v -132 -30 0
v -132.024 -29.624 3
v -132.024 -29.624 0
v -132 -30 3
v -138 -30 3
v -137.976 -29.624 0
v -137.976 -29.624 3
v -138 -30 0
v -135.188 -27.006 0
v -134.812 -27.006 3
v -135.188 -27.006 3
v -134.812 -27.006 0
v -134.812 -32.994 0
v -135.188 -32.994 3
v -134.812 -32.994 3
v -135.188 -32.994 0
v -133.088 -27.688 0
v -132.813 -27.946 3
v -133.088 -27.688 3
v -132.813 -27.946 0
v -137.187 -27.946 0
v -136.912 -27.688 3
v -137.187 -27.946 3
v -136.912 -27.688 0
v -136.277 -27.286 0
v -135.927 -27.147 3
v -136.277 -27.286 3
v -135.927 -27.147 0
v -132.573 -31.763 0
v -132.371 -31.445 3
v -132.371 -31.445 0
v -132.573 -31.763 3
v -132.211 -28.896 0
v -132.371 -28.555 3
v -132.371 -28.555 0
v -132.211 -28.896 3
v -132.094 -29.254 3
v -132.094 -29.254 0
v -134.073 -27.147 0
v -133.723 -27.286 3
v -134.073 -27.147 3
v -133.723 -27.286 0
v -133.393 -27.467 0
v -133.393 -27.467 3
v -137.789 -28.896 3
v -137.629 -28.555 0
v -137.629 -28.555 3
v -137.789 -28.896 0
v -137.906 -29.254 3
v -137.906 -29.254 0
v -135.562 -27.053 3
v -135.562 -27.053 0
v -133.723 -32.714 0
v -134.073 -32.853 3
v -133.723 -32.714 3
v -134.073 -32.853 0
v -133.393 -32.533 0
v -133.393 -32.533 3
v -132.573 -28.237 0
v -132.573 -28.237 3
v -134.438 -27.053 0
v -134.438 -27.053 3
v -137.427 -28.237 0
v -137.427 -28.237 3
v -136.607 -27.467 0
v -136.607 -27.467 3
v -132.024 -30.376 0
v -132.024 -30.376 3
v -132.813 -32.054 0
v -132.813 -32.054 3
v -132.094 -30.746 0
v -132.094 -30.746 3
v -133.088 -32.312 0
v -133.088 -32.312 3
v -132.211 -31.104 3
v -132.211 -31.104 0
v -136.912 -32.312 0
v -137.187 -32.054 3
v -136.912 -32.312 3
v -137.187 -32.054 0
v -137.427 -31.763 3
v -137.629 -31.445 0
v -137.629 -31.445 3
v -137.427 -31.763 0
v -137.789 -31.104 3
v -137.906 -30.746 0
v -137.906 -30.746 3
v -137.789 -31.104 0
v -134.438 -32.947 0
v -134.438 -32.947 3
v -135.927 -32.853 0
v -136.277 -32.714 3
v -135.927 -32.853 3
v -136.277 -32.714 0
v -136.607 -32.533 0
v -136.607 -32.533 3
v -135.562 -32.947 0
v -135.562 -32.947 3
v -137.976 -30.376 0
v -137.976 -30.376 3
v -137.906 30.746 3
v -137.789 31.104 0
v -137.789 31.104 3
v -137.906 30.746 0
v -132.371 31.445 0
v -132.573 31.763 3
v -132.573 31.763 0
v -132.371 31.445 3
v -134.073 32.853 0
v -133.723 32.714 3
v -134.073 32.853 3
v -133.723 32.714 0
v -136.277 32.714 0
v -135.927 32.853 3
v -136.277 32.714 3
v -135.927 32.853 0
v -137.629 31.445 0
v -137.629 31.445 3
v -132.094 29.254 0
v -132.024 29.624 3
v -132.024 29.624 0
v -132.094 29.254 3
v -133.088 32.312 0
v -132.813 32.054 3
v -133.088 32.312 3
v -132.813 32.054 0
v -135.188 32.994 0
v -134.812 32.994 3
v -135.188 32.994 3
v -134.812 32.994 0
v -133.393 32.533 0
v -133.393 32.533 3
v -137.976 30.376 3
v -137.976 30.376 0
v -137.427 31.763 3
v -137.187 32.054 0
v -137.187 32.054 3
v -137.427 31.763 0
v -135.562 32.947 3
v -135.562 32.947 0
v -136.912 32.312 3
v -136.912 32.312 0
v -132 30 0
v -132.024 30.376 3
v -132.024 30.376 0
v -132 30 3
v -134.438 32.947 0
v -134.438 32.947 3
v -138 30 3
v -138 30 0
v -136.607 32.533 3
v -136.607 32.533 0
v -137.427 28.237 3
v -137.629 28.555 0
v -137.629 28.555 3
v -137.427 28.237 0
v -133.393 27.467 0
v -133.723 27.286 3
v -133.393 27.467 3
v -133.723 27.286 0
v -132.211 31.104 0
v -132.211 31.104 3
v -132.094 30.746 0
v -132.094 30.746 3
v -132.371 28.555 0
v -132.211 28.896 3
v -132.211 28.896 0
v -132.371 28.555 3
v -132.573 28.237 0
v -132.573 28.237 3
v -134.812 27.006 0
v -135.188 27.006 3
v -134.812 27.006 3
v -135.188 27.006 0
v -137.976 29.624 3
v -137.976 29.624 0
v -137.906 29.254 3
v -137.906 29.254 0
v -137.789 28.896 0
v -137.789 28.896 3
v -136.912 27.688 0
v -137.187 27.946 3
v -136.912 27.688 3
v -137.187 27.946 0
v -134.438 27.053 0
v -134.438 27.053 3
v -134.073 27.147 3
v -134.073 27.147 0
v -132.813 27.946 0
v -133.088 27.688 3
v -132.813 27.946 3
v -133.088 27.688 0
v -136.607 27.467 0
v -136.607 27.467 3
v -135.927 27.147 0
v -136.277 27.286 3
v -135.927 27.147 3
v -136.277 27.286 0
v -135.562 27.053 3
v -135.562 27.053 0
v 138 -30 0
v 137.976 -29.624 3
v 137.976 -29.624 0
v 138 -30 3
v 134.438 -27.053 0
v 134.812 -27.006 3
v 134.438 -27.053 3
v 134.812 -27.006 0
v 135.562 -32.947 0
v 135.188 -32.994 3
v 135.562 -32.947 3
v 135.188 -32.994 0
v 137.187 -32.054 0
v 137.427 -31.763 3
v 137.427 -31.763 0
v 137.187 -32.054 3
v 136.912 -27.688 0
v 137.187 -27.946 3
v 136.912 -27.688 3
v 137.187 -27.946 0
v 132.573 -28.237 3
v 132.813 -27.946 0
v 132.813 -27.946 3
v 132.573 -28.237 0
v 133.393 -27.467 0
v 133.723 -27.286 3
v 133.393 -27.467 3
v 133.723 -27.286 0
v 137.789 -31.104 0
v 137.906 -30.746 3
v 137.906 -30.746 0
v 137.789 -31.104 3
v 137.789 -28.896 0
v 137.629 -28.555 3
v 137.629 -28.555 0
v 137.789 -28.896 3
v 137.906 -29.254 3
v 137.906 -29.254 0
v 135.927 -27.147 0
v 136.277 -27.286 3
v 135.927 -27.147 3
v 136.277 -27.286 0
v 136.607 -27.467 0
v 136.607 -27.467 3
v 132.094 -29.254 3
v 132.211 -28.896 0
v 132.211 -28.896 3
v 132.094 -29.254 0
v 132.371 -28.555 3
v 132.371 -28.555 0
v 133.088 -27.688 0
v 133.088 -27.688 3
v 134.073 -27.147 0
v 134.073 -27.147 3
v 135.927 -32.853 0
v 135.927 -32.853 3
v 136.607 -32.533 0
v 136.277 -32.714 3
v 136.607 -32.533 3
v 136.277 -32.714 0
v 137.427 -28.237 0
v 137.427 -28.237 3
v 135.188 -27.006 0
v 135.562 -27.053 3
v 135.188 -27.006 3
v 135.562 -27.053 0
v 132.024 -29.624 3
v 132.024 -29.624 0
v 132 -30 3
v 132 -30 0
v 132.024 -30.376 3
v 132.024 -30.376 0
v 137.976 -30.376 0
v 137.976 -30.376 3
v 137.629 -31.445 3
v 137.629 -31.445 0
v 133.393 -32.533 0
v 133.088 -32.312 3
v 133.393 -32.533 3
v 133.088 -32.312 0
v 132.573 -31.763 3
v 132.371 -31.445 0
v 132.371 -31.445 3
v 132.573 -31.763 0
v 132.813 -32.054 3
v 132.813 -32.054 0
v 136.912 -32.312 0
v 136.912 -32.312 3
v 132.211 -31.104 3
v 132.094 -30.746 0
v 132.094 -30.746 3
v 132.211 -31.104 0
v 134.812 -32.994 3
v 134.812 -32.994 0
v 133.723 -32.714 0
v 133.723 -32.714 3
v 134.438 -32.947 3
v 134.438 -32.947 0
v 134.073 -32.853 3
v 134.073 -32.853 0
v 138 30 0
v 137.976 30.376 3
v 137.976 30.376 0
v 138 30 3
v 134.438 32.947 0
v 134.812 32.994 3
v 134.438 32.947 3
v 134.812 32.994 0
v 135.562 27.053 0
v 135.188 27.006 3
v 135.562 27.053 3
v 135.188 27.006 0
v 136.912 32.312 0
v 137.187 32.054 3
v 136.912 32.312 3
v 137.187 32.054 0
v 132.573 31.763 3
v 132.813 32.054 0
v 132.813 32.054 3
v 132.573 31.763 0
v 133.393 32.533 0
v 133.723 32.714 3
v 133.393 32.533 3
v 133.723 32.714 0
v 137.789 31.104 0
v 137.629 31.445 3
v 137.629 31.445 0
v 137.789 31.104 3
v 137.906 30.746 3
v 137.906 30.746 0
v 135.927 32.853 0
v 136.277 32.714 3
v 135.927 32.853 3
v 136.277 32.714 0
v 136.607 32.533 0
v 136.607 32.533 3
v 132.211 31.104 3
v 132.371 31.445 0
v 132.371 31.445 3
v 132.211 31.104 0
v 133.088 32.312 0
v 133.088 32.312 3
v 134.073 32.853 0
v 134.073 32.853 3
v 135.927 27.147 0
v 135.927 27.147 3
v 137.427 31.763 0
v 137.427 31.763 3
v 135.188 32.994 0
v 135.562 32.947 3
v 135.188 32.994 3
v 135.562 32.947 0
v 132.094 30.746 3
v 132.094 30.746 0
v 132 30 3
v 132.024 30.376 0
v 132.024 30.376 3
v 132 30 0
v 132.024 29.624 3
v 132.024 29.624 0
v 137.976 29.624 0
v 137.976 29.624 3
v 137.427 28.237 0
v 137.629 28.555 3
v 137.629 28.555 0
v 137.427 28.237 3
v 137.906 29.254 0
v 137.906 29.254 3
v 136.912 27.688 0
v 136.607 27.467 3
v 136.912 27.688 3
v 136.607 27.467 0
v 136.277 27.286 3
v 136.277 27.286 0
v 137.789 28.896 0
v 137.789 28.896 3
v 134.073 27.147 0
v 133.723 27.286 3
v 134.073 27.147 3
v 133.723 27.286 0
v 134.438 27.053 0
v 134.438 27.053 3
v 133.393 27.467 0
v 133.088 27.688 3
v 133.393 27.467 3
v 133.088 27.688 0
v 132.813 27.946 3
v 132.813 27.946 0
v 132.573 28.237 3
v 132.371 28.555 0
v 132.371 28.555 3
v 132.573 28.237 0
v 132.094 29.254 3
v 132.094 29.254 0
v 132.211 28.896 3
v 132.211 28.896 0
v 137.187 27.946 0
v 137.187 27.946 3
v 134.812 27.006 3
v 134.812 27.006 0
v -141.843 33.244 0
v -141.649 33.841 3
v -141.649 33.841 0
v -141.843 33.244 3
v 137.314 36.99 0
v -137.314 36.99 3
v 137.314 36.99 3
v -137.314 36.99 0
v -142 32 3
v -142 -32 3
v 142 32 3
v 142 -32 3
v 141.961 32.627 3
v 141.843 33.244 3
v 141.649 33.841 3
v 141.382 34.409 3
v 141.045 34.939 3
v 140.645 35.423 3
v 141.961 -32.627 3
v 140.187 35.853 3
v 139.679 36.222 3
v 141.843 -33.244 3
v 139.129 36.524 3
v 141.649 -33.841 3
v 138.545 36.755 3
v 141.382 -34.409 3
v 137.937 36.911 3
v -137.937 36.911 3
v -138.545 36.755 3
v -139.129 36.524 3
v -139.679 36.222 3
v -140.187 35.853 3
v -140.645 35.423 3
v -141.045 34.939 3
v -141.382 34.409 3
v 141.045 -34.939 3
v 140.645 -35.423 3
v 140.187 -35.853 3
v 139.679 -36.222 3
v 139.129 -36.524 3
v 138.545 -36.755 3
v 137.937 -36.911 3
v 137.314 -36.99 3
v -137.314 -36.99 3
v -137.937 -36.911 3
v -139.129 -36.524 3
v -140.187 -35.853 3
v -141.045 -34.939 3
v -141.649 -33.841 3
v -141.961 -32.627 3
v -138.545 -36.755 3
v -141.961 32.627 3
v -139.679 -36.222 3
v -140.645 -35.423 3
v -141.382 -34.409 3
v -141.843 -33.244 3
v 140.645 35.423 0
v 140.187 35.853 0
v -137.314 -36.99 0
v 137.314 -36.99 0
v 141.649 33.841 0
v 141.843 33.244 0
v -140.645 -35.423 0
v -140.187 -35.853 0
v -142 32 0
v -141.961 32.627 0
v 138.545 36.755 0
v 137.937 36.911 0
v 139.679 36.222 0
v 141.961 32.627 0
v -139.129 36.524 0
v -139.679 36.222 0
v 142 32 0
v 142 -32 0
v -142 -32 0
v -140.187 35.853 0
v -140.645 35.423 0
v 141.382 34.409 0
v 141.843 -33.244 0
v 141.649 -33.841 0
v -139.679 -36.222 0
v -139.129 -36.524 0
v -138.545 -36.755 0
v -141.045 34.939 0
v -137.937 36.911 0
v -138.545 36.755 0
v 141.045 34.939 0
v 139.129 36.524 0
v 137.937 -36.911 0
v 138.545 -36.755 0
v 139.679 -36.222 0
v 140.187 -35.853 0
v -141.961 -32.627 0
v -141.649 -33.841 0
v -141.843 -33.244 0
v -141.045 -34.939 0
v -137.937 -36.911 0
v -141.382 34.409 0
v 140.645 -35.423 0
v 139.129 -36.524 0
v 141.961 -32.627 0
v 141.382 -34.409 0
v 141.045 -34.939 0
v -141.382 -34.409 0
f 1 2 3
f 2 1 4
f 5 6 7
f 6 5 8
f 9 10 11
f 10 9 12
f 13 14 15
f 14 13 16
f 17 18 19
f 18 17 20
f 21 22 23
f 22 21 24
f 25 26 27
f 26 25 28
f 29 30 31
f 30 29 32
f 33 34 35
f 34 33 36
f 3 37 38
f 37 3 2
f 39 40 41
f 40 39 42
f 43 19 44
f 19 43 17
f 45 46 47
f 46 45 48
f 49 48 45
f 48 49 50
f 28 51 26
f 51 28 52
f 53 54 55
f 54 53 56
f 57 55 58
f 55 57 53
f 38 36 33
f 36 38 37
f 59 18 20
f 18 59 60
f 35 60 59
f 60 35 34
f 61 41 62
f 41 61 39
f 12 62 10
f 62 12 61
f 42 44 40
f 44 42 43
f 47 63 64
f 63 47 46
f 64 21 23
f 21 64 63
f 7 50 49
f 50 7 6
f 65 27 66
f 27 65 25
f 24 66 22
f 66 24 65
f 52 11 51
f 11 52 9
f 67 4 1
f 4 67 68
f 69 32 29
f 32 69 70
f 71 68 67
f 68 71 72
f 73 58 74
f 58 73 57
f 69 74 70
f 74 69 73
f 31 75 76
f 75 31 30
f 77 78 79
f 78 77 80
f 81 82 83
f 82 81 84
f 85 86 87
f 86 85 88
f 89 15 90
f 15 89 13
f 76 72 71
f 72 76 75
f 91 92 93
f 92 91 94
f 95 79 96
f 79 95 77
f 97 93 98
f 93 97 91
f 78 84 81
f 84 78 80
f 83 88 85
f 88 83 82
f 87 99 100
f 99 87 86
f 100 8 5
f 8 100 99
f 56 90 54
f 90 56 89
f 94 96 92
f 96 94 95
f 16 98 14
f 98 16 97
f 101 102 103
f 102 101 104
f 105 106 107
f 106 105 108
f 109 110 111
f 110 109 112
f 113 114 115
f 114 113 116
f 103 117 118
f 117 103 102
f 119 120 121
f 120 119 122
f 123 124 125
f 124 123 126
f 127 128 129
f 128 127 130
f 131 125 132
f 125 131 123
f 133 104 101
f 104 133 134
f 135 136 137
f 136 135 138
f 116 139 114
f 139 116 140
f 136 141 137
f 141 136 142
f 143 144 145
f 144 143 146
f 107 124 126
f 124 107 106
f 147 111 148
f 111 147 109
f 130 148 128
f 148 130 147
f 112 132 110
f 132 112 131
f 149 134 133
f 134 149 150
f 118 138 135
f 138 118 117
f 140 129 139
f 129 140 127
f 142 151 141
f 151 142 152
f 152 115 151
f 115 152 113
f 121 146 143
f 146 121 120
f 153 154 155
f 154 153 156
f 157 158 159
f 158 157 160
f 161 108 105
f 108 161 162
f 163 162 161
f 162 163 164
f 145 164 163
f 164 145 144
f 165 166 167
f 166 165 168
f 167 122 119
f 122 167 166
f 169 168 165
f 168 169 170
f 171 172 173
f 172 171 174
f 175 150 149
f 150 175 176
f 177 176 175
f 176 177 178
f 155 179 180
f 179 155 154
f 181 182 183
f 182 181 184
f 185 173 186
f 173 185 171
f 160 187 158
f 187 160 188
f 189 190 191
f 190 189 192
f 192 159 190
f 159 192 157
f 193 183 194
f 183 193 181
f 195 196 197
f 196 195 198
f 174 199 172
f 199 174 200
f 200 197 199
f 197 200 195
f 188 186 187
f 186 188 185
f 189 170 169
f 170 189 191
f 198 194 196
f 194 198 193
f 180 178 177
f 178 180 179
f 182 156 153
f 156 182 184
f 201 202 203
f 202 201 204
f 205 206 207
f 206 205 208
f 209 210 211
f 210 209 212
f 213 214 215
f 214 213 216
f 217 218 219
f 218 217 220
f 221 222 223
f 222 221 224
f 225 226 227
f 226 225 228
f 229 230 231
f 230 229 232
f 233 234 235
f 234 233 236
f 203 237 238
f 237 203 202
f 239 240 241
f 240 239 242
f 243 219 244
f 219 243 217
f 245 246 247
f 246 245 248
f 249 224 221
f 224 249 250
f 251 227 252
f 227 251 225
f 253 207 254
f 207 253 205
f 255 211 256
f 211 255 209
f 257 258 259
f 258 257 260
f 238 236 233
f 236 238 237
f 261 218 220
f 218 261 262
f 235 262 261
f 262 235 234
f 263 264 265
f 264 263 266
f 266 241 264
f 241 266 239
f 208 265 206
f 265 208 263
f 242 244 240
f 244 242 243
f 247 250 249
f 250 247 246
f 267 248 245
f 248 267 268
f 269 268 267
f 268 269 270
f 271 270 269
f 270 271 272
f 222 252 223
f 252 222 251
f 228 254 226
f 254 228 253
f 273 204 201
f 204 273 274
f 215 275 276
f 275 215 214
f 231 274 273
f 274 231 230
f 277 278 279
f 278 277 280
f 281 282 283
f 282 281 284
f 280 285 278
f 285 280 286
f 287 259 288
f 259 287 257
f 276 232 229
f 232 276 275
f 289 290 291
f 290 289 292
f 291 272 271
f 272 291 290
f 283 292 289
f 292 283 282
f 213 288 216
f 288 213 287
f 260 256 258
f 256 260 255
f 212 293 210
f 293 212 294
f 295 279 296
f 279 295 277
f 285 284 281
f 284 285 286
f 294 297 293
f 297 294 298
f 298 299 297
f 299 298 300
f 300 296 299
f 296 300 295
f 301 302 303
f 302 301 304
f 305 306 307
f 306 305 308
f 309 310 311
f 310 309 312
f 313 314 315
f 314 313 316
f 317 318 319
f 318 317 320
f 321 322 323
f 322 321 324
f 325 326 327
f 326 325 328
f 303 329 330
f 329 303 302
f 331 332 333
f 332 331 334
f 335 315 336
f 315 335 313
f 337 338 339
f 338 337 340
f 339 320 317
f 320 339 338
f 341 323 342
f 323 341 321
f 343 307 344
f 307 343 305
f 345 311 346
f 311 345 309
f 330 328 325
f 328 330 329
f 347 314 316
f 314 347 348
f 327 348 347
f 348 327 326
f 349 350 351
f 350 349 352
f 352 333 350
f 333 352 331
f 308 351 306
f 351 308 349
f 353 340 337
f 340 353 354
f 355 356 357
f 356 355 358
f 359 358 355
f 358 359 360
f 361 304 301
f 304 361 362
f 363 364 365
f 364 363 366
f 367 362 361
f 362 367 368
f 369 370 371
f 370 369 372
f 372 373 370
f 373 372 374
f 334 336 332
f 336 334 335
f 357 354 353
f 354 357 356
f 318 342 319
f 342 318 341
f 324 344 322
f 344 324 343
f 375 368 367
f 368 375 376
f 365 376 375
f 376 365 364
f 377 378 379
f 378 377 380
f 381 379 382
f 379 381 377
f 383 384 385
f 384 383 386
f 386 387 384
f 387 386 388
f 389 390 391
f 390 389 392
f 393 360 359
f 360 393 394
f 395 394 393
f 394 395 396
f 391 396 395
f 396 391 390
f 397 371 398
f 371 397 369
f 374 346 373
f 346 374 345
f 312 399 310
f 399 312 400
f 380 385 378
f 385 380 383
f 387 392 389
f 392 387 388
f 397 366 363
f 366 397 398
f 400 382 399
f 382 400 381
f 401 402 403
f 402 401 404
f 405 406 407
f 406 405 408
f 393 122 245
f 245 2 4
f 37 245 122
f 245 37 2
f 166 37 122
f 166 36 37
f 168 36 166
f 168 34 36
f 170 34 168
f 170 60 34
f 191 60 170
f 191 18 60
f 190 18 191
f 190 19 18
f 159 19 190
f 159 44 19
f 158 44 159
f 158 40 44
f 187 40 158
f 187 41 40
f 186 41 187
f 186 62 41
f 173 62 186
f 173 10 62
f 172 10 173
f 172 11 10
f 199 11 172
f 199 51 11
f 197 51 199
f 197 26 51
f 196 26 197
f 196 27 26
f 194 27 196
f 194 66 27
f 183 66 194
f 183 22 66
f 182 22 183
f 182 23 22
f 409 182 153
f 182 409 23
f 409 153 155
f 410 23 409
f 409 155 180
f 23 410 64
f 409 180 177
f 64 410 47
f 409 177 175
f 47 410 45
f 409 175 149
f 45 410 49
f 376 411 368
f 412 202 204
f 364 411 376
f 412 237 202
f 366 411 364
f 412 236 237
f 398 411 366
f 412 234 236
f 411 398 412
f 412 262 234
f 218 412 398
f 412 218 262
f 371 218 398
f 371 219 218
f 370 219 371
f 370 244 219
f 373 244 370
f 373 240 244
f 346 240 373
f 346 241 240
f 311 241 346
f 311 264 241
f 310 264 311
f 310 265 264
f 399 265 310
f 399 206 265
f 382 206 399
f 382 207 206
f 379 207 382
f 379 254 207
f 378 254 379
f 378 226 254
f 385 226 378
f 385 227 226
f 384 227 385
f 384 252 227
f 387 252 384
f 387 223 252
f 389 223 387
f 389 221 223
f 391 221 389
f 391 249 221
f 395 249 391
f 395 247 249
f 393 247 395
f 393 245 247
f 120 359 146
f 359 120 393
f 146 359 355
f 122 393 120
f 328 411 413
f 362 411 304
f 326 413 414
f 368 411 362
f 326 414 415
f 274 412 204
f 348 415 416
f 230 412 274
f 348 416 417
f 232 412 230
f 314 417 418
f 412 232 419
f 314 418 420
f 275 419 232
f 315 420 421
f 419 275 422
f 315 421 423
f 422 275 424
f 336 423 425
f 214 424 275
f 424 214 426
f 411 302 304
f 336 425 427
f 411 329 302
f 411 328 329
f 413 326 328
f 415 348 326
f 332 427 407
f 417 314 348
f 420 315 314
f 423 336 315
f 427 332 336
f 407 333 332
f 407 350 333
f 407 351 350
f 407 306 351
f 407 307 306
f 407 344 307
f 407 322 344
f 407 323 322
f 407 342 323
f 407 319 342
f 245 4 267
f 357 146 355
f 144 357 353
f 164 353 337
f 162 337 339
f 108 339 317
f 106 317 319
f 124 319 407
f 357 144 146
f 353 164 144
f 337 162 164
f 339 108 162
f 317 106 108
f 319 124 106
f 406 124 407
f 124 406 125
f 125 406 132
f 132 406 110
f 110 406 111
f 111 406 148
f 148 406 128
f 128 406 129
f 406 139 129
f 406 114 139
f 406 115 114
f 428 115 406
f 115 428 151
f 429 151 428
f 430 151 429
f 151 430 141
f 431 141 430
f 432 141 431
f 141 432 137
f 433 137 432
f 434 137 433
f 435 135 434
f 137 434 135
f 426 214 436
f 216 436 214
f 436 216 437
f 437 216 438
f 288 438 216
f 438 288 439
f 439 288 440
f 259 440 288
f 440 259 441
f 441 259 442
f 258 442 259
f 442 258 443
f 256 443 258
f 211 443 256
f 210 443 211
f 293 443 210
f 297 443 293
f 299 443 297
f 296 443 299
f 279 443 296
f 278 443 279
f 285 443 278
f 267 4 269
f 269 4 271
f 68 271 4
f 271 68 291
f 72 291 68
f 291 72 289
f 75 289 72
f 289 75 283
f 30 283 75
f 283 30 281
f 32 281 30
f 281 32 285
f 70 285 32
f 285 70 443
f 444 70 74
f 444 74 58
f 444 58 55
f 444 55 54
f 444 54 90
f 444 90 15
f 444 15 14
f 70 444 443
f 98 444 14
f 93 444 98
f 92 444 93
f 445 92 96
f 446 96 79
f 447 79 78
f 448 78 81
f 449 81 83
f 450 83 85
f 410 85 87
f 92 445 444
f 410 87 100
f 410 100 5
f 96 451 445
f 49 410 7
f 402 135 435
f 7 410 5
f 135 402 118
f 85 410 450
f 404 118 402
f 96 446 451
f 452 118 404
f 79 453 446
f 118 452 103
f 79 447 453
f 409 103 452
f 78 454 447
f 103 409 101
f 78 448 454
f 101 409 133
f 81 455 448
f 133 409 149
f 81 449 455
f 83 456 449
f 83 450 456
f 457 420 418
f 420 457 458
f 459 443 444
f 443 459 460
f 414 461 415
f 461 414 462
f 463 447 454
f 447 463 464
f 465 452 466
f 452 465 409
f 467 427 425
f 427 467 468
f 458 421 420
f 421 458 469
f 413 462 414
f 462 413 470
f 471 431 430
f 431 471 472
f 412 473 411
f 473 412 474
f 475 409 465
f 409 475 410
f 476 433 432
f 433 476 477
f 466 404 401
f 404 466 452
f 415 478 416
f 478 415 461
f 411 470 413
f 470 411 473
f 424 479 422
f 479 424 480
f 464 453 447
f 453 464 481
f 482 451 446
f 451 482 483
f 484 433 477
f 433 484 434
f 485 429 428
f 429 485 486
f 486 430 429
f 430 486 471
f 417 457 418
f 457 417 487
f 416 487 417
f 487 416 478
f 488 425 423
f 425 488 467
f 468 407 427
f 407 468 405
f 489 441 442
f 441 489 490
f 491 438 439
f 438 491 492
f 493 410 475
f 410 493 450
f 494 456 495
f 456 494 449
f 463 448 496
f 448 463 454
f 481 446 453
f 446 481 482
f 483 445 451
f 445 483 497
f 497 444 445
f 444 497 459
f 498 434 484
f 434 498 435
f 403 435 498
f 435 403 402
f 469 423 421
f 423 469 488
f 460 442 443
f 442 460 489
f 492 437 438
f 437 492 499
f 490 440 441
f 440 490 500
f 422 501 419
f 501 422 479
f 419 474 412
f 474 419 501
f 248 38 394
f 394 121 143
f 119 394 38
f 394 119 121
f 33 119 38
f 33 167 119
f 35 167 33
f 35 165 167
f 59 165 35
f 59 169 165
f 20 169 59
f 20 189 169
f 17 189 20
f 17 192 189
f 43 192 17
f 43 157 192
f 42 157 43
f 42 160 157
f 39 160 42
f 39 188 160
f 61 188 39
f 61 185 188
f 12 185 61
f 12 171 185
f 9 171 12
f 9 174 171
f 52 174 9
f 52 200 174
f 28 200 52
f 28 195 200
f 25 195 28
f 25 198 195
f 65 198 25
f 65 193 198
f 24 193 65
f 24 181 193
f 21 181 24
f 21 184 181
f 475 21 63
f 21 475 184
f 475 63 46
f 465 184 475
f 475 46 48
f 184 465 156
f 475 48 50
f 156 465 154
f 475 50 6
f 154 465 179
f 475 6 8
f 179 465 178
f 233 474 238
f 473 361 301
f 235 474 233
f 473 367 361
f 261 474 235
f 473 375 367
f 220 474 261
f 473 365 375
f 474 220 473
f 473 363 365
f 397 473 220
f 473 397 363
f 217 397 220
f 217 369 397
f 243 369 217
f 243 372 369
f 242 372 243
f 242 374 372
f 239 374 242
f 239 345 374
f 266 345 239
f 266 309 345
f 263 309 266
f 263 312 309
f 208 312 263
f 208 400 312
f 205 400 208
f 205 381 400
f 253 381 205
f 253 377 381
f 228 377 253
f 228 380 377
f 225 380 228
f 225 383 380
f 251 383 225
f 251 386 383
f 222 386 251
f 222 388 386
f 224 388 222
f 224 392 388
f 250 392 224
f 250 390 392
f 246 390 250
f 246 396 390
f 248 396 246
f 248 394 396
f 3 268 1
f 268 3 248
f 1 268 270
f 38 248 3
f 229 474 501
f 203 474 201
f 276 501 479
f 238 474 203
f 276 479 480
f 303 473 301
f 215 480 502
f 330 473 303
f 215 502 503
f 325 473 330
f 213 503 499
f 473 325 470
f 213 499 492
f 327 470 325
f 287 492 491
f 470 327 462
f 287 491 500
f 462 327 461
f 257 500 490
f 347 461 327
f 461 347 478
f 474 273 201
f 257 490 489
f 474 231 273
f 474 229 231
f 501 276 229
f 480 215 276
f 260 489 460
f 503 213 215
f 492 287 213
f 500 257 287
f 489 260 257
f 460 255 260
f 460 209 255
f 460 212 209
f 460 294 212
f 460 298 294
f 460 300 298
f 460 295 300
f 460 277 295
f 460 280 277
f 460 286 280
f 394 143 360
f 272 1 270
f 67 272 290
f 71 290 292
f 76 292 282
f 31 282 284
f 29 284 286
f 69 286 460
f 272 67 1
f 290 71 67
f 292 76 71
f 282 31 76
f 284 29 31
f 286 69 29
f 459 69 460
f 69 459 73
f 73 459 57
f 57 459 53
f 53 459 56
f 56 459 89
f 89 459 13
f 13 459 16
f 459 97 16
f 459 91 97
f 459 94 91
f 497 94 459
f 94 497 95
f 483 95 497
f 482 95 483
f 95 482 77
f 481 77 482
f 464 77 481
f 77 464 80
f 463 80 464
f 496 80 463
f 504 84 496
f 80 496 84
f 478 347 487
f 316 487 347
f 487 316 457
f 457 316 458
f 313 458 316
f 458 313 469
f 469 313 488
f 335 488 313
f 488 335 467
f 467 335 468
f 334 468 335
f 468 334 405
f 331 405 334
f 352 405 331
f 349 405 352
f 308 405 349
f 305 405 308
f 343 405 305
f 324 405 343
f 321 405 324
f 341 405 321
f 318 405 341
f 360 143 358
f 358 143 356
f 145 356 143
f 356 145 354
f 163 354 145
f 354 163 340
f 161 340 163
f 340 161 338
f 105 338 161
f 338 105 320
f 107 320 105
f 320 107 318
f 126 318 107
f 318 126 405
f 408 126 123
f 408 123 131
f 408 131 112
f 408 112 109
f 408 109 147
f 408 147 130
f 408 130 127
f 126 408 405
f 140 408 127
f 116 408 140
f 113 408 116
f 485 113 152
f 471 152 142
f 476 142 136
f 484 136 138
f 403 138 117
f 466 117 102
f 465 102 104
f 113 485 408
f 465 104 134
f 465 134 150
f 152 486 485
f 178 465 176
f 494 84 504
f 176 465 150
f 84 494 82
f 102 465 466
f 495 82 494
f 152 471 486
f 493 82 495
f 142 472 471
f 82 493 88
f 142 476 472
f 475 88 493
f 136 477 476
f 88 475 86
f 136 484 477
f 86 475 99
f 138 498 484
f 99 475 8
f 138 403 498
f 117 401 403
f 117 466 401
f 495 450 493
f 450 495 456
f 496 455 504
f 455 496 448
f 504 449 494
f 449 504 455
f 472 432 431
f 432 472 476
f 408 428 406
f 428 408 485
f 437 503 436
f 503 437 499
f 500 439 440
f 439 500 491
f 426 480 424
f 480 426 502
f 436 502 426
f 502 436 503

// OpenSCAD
$fn = 50;


difference() {
	union() {
		hull() {
			translate(v = [-137.0000000000, 32.0000000000, 0]) {
				cylinder(h = 3, r = 5);
			}
			translate(v = [137.0000000000, 32.0000000000, 0]) {
				cylinder(h = 3, r = 5);
			}
			translate(v = [-137.0000000000, -32.0000000000, 0]) {
				cylinder(h = 3, r = 5);
			}
			translate(v = [137.0000000000, -32.0000000000, 0]) {
				cylinder(h = 3, r = 5);
			}
		}
	}
	union() {
		translate(v = [-135.0000000000, -30.0000000000, -100.0000000000]) {
			cylinder(h = 200, r = 3.0000000000);
		}
		translate(v = [-135.0000000000, 30.0000000000, -100.0000000000]) {
			cylinder(h = 200, r = 3.0000000000);
		}
		translate(v = [135.0000000000, -30.0000000000, -100.0000000000]) {
			cylinder(h = 200, r = 3.0000000000);
		}
		translate(v = [135.0000000000, 30.0000000000, -100.0000000000]) {
			cylinder(h = 200, r = 3.0000000000);
		}
	}
}
